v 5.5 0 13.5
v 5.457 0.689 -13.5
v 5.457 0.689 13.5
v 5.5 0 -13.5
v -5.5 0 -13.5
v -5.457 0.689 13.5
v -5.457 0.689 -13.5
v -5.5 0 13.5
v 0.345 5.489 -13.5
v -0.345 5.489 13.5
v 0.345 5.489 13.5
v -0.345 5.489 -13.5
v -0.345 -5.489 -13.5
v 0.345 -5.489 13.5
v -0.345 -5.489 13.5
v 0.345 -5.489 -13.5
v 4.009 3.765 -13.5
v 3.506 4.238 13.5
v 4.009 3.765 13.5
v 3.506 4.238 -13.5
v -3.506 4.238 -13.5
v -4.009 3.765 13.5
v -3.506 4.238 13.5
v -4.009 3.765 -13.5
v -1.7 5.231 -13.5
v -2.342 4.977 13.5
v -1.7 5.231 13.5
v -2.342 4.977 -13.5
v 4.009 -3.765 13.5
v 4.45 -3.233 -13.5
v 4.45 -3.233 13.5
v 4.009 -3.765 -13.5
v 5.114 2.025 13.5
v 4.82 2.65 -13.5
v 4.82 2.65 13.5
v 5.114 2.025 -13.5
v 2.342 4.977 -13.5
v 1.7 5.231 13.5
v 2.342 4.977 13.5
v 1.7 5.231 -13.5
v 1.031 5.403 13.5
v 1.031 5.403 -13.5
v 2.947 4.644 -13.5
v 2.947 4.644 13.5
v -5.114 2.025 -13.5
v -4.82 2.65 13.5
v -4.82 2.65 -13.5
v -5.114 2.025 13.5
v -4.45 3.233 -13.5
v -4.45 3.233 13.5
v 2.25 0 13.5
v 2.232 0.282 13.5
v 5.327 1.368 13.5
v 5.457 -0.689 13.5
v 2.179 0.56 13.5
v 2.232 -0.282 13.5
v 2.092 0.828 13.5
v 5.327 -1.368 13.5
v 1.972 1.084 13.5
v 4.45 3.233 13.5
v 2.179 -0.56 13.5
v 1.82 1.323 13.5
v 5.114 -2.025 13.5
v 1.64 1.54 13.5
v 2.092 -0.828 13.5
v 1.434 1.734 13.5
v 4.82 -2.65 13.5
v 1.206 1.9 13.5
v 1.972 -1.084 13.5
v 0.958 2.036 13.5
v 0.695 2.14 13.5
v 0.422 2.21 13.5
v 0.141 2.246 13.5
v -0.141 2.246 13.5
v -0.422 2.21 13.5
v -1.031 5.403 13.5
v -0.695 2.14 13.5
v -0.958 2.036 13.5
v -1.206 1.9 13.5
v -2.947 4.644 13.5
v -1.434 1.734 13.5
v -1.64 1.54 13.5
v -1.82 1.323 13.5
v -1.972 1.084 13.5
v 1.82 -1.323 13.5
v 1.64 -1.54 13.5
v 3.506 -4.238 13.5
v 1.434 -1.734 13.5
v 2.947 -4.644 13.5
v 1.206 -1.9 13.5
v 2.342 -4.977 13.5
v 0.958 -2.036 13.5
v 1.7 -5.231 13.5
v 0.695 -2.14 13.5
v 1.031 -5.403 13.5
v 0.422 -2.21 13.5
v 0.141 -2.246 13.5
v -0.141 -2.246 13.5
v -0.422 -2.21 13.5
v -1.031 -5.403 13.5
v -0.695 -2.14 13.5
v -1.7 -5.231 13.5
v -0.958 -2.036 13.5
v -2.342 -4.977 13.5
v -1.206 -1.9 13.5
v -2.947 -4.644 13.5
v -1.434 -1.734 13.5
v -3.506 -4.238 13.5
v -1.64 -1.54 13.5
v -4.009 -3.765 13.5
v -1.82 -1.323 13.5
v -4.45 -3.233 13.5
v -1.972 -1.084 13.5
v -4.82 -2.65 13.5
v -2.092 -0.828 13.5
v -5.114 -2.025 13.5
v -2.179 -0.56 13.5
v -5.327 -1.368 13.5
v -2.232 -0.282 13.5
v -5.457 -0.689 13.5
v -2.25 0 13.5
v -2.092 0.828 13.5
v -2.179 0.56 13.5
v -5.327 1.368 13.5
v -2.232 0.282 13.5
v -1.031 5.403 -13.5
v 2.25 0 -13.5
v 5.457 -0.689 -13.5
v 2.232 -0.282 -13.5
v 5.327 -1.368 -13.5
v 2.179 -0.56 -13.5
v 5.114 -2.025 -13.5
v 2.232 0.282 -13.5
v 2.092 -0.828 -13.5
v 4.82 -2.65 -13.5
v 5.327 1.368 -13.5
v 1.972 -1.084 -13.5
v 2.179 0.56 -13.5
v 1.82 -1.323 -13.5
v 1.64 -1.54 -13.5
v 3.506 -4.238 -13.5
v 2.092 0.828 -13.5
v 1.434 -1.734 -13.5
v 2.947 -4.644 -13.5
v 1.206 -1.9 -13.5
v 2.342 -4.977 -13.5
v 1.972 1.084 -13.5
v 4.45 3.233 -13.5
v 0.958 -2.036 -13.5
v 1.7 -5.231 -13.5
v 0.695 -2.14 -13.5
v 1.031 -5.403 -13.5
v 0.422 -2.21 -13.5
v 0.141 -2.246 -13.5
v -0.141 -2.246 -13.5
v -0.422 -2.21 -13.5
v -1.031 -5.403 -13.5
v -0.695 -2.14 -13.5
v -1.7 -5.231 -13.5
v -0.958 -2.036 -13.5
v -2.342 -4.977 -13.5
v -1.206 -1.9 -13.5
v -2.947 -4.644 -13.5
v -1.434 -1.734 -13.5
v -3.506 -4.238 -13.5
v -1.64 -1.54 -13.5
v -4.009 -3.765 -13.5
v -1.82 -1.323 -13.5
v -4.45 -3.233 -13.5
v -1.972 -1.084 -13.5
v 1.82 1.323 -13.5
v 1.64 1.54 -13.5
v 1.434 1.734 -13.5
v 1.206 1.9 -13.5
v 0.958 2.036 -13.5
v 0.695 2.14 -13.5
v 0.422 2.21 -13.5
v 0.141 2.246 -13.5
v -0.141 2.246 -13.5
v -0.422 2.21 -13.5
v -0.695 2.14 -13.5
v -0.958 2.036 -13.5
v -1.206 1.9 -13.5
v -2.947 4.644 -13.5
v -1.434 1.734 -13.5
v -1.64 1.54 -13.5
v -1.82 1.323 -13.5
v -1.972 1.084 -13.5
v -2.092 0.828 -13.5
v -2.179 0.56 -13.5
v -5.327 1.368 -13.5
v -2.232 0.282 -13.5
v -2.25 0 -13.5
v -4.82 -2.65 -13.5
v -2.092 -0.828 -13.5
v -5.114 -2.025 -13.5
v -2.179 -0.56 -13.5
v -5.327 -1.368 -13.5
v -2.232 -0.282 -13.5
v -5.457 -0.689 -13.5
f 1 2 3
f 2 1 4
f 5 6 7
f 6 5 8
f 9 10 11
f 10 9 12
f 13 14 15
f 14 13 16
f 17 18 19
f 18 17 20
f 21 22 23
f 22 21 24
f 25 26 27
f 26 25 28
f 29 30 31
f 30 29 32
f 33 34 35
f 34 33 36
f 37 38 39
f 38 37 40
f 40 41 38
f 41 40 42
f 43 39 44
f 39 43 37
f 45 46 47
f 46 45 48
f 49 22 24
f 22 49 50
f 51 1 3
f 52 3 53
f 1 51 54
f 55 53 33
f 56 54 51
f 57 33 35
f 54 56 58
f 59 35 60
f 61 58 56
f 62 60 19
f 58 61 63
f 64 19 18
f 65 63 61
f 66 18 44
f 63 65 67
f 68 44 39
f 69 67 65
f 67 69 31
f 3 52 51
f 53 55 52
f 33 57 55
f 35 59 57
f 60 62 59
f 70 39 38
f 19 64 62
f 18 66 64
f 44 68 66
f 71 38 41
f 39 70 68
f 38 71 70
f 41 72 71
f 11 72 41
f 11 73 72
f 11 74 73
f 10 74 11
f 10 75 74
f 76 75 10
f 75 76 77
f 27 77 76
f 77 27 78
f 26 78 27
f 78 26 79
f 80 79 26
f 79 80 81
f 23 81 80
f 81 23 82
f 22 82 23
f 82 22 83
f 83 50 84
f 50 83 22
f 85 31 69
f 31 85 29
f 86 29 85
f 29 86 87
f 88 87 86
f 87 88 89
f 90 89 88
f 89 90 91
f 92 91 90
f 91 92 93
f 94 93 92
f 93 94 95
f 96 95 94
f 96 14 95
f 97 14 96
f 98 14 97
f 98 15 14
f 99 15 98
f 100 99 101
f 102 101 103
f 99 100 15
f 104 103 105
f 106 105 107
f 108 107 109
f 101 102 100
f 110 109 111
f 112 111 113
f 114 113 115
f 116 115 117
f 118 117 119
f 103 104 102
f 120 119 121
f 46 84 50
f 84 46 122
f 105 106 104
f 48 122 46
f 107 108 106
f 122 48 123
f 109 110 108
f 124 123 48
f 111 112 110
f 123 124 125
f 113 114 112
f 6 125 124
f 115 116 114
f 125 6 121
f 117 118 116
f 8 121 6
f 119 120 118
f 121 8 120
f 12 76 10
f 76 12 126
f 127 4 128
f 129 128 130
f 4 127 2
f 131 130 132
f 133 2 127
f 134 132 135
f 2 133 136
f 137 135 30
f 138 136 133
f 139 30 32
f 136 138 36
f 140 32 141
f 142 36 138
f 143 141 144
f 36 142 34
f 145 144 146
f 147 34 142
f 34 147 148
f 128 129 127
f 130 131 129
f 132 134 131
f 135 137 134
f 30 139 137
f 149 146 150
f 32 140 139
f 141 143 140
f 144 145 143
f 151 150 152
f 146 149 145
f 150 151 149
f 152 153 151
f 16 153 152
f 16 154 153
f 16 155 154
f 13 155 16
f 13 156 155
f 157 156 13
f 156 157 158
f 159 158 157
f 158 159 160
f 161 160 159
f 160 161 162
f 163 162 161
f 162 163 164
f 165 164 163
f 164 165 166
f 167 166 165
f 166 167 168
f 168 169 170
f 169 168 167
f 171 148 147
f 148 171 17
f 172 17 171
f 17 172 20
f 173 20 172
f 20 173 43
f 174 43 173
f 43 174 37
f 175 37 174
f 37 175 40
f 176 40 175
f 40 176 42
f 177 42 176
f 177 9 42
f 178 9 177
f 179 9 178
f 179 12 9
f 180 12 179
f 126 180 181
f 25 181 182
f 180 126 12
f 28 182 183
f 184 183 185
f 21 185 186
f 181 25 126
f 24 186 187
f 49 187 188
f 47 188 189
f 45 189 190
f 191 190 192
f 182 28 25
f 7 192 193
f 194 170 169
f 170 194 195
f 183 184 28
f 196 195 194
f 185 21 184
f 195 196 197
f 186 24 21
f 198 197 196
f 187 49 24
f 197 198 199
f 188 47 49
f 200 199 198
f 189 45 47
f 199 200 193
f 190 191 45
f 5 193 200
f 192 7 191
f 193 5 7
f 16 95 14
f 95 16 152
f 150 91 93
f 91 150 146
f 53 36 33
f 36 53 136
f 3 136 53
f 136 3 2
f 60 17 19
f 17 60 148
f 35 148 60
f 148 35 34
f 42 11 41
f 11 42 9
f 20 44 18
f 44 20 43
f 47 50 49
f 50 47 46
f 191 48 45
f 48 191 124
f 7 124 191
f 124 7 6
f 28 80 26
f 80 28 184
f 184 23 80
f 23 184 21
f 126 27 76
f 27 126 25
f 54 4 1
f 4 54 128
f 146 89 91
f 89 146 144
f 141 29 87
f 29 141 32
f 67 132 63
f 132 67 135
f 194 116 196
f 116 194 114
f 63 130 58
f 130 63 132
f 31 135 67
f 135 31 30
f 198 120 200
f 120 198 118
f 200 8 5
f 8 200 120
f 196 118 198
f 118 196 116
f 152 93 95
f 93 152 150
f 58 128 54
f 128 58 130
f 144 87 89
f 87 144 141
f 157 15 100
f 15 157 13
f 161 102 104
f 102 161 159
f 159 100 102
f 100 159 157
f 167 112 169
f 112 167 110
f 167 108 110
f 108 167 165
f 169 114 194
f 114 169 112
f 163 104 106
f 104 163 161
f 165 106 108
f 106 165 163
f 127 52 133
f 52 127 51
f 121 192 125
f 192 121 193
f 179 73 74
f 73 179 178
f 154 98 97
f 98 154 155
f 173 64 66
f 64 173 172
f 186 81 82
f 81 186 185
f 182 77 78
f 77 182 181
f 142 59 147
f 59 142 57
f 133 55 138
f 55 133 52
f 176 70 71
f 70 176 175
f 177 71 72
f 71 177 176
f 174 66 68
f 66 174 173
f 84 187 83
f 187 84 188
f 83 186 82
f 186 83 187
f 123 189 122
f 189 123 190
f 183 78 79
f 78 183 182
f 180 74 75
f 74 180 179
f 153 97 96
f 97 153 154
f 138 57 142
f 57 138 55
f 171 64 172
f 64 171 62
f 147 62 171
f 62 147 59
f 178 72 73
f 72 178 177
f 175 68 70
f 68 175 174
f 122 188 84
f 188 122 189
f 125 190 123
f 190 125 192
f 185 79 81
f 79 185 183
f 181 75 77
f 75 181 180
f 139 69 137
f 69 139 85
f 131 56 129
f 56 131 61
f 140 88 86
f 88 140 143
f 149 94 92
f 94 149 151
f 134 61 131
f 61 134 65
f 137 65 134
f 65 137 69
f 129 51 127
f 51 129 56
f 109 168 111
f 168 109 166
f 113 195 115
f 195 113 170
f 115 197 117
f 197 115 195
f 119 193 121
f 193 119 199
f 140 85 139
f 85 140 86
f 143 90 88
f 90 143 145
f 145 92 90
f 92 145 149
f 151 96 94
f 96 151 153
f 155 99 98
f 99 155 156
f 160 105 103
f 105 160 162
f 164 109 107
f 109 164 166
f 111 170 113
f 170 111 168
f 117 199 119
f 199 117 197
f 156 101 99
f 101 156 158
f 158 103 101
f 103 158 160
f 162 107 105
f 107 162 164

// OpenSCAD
$fn = 50;


difference() {
	union() {
		translate(v = [0, 0, -13.5000000000]) {
			cylinder(h = 27, r = 5.5000000000);
		}
	}
	union() {
		translate(v = [0, 0, -100.0000000000]) {
			cylinder(h = 200, r = 2.2500000000);
		}
	}
}
